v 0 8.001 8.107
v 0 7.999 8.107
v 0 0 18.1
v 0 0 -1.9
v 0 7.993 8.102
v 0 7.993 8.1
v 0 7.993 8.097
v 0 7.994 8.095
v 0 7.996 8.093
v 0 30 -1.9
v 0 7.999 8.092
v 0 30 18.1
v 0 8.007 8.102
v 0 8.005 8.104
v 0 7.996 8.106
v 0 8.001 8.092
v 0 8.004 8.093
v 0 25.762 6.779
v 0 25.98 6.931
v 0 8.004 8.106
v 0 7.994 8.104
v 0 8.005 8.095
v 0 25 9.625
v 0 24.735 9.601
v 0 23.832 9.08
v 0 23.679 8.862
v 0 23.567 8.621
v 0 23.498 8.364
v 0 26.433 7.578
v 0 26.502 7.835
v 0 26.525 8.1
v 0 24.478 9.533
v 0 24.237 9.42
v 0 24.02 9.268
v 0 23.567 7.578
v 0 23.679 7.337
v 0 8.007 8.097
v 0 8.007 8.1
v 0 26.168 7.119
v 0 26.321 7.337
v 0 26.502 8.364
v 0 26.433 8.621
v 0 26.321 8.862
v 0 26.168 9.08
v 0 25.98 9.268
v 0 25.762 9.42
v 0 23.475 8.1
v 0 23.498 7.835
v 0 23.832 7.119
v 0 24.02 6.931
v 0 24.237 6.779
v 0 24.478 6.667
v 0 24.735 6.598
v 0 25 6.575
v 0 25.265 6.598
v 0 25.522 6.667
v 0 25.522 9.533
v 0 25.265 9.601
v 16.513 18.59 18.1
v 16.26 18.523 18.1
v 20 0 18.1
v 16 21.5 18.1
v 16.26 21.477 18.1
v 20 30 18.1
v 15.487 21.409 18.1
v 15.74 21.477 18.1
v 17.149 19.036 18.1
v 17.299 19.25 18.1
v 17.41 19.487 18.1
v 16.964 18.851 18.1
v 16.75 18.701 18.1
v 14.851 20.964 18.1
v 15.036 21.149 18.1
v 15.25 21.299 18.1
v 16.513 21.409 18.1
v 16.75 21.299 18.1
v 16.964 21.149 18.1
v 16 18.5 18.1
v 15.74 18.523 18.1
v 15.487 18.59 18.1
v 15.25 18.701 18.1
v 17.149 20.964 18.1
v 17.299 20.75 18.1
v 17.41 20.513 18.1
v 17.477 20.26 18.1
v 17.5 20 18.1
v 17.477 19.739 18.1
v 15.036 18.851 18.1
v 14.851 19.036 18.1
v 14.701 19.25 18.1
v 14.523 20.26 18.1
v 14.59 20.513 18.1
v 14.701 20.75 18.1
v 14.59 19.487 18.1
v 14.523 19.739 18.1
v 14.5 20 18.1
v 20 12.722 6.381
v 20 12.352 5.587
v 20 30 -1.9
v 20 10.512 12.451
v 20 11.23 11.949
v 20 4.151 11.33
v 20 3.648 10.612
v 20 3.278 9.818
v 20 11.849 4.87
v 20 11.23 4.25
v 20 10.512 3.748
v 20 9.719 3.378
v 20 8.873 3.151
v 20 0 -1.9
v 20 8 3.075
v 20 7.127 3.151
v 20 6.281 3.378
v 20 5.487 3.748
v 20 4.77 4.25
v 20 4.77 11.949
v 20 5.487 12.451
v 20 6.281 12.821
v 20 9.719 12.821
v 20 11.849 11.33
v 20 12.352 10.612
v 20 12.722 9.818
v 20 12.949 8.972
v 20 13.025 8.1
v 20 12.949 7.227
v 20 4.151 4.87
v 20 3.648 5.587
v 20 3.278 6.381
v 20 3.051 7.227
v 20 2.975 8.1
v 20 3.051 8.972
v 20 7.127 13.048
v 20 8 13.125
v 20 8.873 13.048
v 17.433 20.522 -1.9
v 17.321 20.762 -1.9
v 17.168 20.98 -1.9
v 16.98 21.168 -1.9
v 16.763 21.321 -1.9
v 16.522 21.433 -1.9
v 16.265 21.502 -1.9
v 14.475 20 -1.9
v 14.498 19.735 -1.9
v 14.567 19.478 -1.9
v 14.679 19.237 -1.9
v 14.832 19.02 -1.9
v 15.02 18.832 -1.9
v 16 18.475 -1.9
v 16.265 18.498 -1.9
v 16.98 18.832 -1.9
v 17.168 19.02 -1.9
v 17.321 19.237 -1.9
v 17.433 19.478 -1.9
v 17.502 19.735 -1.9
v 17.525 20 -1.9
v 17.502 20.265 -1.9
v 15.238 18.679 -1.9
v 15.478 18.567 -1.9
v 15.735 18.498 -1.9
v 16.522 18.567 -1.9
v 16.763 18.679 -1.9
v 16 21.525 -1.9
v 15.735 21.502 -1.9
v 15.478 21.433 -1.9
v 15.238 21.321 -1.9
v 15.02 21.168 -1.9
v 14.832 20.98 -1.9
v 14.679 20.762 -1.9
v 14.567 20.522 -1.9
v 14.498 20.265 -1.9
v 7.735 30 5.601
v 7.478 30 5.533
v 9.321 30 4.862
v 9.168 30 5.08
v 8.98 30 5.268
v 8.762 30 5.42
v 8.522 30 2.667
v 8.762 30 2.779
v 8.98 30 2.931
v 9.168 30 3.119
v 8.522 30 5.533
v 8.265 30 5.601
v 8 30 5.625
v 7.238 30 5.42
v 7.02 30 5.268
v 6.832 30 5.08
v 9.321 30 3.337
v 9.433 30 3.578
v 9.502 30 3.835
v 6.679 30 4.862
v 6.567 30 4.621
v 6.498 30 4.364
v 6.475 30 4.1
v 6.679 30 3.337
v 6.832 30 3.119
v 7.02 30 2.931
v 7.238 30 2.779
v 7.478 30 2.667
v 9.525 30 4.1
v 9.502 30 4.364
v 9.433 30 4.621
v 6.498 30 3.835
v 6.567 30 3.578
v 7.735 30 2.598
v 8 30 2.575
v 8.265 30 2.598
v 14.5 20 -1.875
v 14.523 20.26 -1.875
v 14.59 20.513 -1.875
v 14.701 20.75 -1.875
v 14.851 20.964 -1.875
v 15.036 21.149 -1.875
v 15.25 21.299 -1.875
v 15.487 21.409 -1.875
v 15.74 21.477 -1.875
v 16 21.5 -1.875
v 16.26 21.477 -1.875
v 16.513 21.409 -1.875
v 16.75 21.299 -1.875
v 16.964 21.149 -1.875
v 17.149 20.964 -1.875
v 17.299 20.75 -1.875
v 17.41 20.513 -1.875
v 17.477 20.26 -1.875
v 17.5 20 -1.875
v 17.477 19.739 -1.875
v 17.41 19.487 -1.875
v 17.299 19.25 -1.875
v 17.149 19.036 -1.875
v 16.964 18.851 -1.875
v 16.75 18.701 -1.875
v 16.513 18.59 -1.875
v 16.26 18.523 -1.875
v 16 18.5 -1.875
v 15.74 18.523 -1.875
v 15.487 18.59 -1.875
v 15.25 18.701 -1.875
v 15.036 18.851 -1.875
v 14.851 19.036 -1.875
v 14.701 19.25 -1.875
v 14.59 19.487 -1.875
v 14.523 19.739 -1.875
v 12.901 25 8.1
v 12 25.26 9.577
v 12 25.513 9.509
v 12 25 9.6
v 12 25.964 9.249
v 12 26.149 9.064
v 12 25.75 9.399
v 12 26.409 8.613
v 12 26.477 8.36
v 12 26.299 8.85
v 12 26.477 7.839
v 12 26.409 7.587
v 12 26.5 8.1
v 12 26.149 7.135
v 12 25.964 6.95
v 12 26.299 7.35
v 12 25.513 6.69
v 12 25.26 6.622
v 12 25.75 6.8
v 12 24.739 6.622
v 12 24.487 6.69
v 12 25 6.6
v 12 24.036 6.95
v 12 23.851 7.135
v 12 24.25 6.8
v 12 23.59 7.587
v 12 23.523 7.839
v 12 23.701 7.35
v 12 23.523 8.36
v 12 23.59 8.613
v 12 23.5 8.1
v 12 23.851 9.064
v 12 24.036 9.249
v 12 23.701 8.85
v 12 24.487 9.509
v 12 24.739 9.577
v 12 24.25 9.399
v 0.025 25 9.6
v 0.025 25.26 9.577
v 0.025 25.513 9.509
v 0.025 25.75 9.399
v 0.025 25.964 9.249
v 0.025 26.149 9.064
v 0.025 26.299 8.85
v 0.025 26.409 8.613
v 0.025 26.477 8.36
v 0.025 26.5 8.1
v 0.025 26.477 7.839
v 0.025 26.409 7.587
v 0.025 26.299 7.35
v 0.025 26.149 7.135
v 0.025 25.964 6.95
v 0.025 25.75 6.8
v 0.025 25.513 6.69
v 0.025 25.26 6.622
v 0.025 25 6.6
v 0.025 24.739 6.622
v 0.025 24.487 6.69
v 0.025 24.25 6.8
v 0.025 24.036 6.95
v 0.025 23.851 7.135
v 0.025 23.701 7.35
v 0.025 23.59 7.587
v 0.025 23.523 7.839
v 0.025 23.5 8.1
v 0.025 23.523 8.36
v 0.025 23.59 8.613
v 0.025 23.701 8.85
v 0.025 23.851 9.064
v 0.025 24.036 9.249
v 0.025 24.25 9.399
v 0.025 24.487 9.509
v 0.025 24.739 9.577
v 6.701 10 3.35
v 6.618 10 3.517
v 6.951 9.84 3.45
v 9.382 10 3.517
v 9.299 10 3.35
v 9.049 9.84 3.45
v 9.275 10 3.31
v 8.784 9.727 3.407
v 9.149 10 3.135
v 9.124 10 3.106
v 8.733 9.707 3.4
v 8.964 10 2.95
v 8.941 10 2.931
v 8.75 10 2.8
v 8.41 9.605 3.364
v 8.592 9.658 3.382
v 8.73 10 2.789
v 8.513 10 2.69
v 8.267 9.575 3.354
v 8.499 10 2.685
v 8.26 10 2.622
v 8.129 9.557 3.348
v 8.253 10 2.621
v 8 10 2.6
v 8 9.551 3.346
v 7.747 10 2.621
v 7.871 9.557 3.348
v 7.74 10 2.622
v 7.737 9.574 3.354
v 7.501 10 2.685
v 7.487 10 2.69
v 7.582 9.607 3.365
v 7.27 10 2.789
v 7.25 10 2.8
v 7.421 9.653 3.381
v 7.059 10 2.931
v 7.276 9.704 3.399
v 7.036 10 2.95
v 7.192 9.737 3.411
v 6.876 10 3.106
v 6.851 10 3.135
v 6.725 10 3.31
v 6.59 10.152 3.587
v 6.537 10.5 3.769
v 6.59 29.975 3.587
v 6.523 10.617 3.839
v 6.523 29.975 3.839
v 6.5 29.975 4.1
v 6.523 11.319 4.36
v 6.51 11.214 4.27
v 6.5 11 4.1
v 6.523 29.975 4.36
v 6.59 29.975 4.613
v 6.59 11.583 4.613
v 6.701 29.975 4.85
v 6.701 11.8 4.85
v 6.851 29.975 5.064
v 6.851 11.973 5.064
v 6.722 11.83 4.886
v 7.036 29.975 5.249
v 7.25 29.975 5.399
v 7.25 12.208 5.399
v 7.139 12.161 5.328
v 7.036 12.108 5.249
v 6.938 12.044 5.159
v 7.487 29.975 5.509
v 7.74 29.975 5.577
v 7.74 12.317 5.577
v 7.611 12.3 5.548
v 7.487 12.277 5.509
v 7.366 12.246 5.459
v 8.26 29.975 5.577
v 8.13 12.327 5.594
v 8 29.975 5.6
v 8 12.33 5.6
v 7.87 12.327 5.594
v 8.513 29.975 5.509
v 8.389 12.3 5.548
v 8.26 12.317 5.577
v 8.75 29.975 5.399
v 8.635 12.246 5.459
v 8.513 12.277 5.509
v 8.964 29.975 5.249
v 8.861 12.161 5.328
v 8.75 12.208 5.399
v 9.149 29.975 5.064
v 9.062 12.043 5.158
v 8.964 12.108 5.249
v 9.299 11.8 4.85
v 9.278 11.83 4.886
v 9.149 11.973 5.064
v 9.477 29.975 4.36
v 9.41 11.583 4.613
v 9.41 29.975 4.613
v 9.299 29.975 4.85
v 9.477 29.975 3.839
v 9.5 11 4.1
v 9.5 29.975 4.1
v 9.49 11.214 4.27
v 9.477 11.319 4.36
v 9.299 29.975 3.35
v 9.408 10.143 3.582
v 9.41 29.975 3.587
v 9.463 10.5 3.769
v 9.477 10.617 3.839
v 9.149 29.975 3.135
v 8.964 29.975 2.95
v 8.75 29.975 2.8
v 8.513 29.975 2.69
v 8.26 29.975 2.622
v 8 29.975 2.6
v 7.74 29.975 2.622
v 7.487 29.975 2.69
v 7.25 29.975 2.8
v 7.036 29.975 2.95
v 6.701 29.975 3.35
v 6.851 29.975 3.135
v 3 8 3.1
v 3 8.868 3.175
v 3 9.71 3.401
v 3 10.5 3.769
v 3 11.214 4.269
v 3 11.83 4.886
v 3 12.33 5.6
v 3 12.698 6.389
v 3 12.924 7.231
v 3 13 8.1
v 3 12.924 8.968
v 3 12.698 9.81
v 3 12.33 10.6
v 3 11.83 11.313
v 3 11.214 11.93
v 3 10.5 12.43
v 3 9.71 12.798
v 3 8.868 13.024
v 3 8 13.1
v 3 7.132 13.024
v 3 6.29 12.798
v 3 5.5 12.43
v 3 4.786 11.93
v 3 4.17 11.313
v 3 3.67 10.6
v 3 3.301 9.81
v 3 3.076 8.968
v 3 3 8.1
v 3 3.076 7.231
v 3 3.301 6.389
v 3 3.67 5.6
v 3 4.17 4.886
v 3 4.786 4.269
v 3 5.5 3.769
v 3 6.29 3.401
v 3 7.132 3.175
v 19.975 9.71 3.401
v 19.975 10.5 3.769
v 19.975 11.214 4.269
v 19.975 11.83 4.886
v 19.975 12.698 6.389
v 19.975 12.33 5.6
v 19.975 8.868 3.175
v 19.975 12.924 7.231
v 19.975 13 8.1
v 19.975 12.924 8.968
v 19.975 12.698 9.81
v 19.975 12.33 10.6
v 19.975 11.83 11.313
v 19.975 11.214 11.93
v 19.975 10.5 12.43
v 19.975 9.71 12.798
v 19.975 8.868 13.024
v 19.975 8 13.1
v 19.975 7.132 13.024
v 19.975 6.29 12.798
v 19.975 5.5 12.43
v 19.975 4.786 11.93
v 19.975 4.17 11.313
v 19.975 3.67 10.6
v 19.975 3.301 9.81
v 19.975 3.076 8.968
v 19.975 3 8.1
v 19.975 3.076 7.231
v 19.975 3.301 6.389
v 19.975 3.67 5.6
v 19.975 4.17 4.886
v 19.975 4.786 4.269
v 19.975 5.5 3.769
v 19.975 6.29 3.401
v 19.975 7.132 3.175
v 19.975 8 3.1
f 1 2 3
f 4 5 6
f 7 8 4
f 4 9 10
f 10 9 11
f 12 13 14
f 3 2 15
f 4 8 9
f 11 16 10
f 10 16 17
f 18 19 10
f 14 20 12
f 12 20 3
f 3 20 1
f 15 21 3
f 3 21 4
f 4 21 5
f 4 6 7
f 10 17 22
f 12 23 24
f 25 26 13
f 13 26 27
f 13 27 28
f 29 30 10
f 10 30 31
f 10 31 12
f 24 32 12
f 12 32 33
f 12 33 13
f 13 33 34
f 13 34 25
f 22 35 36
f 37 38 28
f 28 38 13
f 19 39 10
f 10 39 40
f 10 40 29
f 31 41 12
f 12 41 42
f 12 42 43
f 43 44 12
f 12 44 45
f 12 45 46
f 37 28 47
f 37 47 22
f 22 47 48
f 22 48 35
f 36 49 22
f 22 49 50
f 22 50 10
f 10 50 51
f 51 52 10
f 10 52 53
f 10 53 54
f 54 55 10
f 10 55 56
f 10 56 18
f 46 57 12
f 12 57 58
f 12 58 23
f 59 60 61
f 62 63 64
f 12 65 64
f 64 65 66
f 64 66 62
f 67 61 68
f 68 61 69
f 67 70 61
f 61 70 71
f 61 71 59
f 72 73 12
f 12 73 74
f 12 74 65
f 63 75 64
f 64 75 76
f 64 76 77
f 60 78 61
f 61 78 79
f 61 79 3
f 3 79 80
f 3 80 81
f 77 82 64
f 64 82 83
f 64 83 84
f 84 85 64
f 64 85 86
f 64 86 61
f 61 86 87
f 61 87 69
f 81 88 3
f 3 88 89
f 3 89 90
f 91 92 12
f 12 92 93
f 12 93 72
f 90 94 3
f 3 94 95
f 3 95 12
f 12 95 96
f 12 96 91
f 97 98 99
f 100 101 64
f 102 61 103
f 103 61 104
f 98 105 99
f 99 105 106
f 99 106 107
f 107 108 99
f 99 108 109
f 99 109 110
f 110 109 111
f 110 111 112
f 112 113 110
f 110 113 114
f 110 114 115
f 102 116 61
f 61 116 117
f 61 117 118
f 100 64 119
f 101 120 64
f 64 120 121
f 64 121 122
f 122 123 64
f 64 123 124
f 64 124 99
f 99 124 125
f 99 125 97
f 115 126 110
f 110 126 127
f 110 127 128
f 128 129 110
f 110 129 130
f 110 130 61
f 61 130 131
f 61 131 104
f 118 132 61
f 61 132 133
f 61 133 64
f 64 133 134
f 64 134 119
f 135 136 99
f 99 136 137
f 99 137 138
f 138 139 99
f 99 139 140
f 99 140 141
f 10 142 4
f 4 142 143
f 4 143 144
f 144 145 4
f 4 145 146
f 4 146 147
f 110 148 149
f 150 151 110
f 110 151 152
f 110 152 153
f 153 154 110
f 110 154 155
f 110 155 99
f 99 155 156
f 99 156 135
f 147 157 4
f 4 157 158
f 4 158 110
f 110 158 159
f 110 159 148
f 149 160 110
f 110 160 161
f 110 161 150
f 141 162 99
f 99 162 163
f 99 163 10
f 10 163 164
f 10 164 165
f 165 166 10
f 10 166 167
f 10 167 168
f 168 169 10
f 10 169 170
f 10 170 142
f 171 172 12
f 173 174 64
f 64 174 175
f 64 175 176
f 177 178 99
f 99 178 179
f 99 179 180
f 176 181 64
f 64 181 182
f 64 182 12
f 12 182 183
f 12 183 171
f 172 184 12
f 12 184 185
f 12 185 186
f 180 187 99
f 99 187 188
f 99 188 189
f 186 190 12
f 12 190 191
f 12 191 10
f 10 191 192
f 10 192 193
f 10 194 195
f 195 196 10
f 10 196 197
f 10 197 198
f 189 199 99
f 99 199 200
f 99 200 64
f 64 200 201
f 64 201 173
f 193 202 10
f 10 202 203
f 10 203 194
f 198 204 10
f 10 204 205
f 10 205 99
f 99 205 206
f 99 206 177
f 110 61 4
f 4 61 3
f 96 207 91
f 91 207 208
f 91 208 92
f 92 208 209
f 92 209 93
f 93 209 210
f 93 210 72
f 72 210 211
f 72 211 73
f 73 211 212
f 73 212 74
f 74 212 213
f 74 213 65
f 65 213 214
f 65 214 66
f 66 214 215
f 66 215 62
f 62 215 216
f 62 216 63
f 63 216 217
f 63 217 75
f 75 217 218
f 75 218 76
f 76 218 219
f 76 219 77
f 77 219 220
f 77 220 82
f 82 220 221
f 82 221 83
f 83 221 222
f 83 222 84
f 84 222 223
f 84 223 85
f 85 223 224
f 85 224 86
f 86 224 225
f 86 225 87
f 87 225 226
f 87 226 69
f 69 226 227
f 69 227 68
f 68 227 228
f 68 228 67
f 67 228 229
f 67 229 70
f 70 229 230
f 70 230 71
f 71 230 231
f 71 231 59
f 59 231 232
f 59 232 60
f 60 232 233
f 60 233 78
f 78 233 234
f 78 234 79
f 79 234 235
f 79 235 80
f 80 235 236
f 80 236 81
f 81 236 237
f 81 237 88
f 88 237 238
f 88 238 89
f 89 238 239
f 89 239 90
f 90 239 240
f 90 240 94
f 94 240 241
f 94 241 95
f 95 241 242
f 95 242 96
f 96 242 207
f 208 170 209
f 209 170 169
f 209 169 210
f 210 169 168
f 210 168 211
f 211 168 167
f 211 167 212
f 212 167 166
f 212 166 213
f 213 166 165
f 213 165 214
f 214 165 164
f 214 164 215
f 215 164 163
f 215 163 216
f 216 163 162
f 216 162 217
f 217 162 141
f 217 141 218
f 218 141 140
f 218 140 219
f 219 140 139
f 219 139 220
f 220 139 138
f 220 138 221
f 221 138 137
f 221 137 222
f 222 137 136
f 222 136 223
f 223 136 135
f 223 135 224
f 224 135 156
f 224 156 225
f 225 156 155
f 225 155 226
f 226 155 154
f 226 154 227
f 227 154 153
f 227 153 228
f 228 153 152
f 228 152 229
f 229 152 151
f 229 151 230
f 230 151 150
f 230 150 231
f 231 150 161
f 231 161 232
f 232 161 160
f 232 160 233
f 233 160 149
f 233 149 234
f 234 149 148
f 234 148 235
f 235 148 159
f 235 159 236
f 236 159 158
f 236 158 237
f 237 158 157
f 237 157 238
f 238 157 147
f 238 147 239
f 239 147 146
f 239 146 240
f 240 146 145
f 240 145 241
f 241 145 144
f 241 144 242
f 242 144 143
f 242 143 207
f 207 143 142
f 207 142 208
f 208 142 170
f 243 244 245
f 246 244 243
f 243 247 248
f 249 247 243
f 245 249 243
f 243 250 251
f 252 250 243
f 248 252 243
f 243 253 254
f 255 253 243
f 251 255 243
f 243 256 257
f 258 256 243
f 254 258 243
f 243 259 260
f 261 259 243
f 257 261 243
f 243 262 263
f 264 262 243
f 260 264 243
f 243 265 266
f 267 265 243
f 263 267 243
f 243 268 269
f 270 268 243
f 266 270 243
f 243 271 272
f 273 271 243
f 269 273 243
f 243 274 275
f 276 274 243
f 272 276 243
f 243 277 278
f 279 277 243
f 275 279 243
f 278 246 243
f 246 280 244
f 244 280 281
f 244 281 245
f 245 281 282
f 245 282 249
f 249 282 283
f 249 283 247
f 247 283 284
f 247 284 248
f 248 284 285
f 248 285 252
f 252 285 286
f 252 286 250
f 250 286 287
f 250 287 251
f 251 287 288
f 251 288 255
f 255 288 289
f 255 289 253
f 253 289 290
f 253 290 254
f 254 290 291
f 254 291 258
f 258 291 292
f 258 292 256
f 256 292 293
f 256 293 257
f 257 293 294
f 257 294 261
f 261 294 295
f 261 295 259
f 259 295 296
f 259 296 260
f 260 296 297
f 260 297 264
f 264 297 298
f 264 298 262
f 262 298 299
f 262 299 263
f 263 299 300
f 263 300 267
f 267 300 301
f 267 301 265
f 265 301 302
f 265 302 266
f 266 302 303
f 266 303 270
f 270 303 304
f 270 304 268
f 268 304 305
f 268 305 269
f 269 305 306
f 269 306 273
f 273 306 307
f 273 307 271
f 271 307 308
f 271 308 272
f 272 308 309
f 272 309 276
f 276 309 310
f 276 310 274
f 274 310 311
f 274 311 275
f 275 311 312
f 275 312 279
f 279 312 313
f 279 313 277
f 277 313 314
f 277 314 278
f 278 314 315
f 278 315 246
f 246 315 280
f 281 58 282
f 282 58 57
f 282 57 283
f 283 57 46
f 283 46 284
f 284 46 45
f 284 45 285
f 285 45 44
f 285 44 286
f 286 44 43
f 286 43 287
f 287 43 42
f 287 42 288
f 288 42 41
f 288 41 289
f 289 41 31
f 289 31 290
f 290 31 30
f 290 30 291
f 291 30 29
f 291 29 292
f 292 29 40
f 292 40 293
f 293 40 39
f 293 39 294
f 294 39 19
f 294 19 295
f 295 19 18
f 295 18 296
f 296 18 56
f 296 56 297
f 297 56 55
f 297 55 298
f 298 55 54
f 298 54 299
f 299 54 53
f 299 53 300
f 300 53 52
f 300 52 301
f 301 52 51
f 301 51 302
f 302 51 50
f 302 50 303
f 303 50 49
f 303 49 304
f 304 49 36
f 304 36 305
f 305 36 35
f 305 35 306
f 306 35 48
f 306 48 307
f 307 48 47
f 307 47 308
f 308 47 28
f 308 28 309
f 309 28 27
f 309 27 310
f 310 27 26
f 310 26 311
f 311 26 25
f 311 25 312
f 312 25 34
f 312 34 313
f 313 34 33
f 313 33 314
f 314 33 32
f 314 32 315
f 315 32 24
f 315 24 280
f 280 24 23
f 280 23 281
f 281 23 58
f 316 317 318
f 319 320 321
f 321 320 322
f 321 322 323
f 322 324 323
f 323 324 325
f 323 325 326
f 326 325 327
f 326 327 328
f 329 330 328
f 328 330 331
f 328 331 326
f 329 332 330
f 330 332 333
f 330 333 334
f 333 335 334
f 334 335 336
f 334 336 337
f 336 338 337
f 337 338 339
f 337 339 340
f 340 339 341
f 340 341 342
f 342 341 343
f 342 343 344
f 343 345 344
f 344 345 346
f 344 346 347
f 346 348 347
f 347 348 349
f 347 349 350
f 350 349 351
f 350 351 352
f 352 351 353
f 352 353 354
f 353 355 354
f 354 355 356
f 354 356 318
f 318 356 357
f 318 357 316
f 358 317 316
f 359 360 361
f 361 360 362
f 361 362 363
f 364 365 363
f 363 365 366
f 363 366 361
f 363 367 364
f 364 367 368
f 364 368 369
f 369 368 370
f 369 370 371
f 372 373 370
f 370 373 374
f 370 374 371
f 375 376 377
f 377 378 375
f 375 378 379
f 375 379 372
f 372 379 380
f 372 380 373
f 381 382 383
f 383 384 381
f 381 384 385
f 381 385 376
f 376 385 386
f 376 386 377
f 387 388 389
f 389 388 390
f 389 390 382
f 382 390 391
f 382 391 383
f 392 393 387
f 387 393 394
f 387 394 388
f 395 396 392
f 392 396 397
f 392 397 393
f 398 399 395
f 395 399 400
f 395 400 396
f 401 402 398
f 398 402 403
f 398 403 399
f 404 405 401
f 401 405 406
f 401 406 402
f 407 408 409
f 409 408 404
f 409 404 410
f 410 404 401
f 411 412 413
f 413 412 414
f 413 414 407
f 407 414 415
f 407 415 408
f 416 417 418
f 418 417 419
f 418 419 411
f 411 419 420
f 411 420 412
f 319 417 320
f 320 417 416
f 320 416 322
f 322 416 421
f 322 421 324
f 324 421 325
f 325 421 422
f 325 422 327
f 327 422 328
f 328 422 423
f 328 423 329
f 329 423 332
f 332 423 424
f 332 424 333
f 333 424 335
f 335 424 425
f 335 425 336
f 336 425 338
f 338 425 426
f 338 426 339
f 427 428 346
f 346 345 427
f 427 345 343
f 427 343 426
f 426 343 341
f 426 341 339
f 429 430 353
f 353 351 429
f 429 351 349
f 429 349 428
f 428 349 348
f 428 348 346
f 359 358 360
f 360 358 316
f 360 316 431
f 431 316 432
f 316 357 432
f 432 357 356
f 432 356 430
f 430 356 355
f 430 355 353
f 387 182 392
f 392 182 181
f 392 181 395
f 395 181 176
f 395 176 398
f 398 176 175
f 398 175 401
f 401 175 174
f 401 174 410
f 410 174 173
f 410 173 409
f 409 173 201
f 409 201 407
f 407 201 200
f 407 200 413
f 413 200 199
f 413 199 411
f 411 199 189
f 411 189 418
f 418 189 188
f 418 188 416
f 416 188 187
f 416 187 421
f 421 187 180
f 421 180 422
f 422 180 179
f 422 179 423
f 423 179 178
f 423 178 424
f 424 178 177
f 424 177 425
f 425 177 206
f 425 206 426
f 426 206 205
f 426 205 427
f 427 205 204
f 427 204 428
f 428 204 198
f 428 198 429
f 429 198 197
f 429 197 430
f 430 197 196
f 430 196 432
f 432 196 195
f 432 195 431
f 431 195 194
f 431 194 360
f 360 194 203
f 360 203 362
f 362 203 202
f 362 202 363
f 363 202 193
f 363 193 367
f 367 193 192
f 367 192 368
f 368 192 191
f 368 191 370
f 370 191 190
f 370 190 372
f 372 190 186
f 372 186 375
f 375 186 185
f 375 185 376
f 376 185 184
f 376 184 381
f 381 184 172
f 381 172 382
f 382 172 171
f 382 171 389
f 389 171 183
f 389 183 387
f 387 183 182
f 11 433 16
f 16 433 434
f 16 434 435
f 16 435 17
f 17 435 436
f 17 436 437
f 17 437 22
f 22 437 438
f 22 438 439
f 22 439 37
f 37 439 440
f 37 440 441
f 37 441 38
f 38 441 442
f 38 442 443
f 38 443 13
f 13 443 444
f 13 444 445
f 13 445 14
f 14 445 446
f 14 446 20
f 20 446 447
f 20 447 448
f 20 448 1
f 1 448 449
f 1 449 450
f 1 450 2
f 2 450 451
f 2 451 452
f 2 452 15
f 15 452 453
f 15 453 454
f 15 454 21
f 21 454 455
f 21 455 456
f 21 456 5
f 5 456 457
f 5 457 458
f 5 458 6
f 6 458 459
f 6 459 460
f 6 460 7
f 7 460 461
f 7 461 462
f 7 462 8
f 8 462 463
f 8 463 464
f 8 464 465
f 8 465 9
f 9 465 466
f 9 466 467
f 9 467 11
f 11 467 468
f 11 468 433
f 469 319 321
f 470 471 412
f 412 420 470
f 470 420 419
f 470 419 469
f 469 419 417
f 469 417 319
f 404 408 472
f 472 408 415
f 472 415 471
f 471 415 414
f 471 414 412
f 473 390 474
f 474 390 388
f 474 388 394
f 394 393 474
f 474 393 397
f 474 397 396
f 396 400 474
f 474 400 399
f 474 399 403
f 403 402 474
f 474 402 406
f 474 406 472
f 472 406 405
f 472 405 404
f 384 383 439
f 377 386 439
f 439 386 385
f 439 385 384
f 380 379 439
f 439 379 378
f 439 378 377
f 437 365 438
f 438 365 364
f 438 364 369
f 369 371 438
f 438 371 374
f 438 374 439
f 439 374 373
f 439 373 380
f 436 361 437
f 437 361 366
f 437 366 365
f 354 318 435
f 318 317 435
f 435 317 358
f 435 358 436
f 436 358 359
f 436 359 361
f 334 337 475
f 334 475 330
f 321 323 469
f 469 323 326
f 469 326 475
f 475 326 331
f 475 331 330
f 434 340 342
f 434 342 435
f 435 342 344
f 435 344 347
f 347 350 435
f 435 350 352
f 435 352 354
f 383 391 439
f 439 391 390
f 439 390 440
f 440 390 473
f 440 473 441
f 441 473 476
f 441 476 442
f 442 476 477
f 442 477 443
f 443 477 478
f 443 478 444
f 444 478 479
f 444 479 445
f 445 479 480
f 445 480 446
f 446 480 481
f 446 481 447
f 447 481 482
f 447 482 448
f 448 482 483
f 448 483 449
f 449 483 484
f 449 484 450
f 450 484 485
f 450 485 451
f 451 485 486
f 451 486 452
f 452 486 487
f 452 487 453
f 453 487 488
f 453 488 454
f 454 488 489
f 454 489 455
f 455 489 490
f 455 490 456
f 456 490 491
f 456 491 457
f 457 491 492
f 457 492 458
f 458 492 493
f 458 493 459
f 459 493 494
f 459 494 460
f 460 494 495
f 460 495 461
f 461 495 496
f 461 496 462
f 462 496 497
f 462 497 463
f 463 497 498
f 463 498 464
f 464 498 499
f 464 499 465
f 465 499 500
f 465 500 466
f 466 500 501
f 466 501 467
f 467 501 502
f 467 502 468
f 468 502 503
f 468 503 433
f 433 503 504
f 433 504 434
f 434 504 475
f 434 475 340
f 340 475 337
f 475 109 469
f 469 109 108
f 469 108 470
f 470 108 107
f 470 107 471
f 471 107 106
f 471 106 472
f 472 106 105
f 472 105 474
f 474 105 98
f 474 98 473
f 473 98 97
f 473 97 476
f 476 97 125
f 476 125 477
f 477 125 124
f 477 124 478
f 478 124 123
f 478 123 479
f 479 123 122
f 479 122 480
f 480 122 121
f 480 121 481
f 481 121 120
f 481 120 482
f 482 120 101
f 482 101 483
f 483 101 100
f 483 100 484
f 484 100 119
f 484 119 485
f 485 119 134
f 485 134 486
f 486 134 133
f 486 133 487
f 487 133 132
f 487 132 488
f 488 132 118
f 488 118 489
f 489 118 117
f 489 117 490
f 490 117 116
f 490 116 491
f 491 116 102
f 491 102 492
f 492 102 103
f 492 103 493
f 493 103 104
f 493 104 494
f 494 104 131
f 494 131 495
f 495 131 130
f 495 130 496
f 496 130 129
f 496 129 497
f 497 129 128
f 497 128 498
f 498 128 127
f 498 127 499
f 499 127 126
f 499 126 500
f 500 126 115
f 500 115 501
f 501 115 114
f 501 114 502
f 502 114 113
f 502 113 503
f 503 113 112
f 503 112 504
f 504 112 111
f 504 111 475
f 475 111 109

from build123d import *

# Parameters (mm, degrees)
SKETCH1_W                        = 20
SKETCH1_H                        = 20
BOSS_EXTRUDE1_DEPTH              = 30
F_3_0MM_DOWEL_HOLE1_D            = 3
F_3_0MM_DOWEL_HOLE1_DEPTH        = 20
F_3_0MM_DOWEL_HOLE1_CSINK_D      = 3.05
F_3_0MM_DOWEL_HOLE1_CSINK_ANGLE  = 90
F_3_0MM_DOWEL_HOLE1_TIP          = 0.901290929
F_3_0MM_DOWEL_HOLE2_D            = 3
F_3_0MM_DOWEL_HOLE2_DEPTH        = 12
F_3_0MM_DOWEL_HOLE2_CSINK_D      = 3.05
F_3_0MM_DOWEL_HOLE2_CSINK_ANGLE  = 90
F_3_0MM_DOWEL_HOLE2_TIP          = 0.901290929
F_3_0MM_DOWEL_HOLE3_D            = 3
F_3_0MM_DOWEL_HOLE3_DEPTH        = 20
F_3_0MM_DOWEL_HOLE3_CSINK_D      = 3.05
F_3_0MM_DOWEL_HOLE3_CSINK_ANGLE  = 90
F_3_0MM_DOWEL_HOLE3_TIP          = 0.901290929
F_10_0MM_DOWEL_HOLE1_D           = 10
F_10_0MM_DOWEL_HOLE1_DEPTH       = 17
F_10_0MM_DOWEL_HOLE1_CSINK_D     = 10.05
F_10_0MM_DOWEL_HOLE1_CSINK_ANGLE = 90
F_10_0MM_DOWEL_HOLE1_TIP         = 3.004303095


with BuildPart() as part:
    # Sketch1 → Boss-Extrude1 (new body)
    with BuildSketch(Plane(origin=(0, 0, 0), x_dir=(1, 0, 0), z_dir=(0, 1, 0))):
        with Locations((10, -8.099538279)):
            Rectangle(SKETCH1_W, SKETCH1_H)
    extrude(amount=BOSS_EXTRUDE1_DEPTH)

    # Ø3.0mm Dowel Hole1
    with Locations(Plane(origin=(0, 0, -1.900461721), x_dir=(-1, 0, 0), z_dir=(0, 0, -1))):
        with Locations((-16, 20)):
            CounterSinkHole(F_3_0MM_DOWEL_HOLE1_D / 2, F_3_0MM_DOWEL_HOLE1_CSINK_D / 2, depth=F_3_0MM_DOWEL_HOLE1_DEPTH, counter_sink_angle=F_3_0MM_DOWEL_HOLE1_CSINK_ANGLE)
            with Locations((0, 0, -(F_3_0MM_DOWEL_HOLE1_DEPTH + F_3_0MM_DOWEL_HOLE1_TIP / 2))):  # 118° drill point
                Cone(0, F_3_0MM_DOWEL_HOLE1_D / 2, F_3_0MM_DOWEL_HOLE1_TIP, mode=Mode.SUBTRACT)

    # Ø3.0mm Dowel Hole2
    with Locations(Plane.ZY):
        with Locations((8.099538279, 25)):
            CounterSinkHole(F_3_0MM_DOWEL_HOLE2_D / 2, F_3_0MM_DOWEL_HOLE2_CSINK_D / 2, depth=F_3_0MM_DOWEL_HOLE2_DEPTH, counter_sink_angle=F_3_0MM_DOWEL_HOLE2_CSINK_ANGLE)
            with Locations((0, 0, -(F_3_0MM_DOWEL_HOLE2_DEPTH + F_3_0MM_DOWEL_HOLE2_TIP / 2))):  # 118° drill point
                Cone(0, F_3_0MM_DOWEL_HOLE2_D / 2, F_3_0MM_DOWEL_HOLE2_TIP, mode=Mode.SUBTRACT)

    # Ø3.0mm Dowel Hole3
    with Locations(Plane(origin=(0, 30, 0), x_dir=(1, 0, 0), z_dir=(0, 1, 0))):
        with Locations((8, -4.099538279)):
            CounterSinkHole(F_3_0MM_DOWEL_HOLE3_D / 2, F_3_0MM_DOWEL_HOLE3_CSINK_D / 2, depth=F_3_0MM_DOWEL_HOLE3_DEPTH, counter_sink_angle=F_3_0MM_DOWEL_HOLE3_CSINK_ANGLE)
            with Locations((0, 0, -(F_3_0MM_DOWEL_HOLE3_DEPTH + F_3_0MM_DOWEL_HOLE3_TIP / 2))):  # 118° drill point
                Cone(0, F_3_0MM_DOWEL_HOLE3_D / 2, F_3_0MM_DOWEL_HOLE3_TIP, mode=Mode.SUBTRACT)

    # Ø10.0mm Dowel Hole1
    with Locations(Plane(origin=(20, 0, 0), x_dir=(0, 0, -1), z_dir=(1, 0, 0))):
        with Locations((-8.099538279, 8)):
            CounterSinkHole(F_10_0MM_DOWEL_HOLE1_D / 2, F_10_0MM_DOWEL_HOLE1_CSINK_D / 2, depth=F_10_0MM_DOWEL_HOLE1_DEPTH, counter_sink_angle=F_10_0MM_DOWEL_HOLE1_CSINK_ANGLE)
            with Locations((0, 0, -(F_10_0MM_DOWEL_HOLE1_DEPTH + F_10_0MM_DOWEL_HOLE1_TIP / 2))):  # 118° drill point
                Cone(0, F_10_0MM_DOWEL_HOLE1_D / 2, F_10_0MM_DOWEL_HOLE1_TIP, mode=Mode.SUBTRACT)


solid = part.part
